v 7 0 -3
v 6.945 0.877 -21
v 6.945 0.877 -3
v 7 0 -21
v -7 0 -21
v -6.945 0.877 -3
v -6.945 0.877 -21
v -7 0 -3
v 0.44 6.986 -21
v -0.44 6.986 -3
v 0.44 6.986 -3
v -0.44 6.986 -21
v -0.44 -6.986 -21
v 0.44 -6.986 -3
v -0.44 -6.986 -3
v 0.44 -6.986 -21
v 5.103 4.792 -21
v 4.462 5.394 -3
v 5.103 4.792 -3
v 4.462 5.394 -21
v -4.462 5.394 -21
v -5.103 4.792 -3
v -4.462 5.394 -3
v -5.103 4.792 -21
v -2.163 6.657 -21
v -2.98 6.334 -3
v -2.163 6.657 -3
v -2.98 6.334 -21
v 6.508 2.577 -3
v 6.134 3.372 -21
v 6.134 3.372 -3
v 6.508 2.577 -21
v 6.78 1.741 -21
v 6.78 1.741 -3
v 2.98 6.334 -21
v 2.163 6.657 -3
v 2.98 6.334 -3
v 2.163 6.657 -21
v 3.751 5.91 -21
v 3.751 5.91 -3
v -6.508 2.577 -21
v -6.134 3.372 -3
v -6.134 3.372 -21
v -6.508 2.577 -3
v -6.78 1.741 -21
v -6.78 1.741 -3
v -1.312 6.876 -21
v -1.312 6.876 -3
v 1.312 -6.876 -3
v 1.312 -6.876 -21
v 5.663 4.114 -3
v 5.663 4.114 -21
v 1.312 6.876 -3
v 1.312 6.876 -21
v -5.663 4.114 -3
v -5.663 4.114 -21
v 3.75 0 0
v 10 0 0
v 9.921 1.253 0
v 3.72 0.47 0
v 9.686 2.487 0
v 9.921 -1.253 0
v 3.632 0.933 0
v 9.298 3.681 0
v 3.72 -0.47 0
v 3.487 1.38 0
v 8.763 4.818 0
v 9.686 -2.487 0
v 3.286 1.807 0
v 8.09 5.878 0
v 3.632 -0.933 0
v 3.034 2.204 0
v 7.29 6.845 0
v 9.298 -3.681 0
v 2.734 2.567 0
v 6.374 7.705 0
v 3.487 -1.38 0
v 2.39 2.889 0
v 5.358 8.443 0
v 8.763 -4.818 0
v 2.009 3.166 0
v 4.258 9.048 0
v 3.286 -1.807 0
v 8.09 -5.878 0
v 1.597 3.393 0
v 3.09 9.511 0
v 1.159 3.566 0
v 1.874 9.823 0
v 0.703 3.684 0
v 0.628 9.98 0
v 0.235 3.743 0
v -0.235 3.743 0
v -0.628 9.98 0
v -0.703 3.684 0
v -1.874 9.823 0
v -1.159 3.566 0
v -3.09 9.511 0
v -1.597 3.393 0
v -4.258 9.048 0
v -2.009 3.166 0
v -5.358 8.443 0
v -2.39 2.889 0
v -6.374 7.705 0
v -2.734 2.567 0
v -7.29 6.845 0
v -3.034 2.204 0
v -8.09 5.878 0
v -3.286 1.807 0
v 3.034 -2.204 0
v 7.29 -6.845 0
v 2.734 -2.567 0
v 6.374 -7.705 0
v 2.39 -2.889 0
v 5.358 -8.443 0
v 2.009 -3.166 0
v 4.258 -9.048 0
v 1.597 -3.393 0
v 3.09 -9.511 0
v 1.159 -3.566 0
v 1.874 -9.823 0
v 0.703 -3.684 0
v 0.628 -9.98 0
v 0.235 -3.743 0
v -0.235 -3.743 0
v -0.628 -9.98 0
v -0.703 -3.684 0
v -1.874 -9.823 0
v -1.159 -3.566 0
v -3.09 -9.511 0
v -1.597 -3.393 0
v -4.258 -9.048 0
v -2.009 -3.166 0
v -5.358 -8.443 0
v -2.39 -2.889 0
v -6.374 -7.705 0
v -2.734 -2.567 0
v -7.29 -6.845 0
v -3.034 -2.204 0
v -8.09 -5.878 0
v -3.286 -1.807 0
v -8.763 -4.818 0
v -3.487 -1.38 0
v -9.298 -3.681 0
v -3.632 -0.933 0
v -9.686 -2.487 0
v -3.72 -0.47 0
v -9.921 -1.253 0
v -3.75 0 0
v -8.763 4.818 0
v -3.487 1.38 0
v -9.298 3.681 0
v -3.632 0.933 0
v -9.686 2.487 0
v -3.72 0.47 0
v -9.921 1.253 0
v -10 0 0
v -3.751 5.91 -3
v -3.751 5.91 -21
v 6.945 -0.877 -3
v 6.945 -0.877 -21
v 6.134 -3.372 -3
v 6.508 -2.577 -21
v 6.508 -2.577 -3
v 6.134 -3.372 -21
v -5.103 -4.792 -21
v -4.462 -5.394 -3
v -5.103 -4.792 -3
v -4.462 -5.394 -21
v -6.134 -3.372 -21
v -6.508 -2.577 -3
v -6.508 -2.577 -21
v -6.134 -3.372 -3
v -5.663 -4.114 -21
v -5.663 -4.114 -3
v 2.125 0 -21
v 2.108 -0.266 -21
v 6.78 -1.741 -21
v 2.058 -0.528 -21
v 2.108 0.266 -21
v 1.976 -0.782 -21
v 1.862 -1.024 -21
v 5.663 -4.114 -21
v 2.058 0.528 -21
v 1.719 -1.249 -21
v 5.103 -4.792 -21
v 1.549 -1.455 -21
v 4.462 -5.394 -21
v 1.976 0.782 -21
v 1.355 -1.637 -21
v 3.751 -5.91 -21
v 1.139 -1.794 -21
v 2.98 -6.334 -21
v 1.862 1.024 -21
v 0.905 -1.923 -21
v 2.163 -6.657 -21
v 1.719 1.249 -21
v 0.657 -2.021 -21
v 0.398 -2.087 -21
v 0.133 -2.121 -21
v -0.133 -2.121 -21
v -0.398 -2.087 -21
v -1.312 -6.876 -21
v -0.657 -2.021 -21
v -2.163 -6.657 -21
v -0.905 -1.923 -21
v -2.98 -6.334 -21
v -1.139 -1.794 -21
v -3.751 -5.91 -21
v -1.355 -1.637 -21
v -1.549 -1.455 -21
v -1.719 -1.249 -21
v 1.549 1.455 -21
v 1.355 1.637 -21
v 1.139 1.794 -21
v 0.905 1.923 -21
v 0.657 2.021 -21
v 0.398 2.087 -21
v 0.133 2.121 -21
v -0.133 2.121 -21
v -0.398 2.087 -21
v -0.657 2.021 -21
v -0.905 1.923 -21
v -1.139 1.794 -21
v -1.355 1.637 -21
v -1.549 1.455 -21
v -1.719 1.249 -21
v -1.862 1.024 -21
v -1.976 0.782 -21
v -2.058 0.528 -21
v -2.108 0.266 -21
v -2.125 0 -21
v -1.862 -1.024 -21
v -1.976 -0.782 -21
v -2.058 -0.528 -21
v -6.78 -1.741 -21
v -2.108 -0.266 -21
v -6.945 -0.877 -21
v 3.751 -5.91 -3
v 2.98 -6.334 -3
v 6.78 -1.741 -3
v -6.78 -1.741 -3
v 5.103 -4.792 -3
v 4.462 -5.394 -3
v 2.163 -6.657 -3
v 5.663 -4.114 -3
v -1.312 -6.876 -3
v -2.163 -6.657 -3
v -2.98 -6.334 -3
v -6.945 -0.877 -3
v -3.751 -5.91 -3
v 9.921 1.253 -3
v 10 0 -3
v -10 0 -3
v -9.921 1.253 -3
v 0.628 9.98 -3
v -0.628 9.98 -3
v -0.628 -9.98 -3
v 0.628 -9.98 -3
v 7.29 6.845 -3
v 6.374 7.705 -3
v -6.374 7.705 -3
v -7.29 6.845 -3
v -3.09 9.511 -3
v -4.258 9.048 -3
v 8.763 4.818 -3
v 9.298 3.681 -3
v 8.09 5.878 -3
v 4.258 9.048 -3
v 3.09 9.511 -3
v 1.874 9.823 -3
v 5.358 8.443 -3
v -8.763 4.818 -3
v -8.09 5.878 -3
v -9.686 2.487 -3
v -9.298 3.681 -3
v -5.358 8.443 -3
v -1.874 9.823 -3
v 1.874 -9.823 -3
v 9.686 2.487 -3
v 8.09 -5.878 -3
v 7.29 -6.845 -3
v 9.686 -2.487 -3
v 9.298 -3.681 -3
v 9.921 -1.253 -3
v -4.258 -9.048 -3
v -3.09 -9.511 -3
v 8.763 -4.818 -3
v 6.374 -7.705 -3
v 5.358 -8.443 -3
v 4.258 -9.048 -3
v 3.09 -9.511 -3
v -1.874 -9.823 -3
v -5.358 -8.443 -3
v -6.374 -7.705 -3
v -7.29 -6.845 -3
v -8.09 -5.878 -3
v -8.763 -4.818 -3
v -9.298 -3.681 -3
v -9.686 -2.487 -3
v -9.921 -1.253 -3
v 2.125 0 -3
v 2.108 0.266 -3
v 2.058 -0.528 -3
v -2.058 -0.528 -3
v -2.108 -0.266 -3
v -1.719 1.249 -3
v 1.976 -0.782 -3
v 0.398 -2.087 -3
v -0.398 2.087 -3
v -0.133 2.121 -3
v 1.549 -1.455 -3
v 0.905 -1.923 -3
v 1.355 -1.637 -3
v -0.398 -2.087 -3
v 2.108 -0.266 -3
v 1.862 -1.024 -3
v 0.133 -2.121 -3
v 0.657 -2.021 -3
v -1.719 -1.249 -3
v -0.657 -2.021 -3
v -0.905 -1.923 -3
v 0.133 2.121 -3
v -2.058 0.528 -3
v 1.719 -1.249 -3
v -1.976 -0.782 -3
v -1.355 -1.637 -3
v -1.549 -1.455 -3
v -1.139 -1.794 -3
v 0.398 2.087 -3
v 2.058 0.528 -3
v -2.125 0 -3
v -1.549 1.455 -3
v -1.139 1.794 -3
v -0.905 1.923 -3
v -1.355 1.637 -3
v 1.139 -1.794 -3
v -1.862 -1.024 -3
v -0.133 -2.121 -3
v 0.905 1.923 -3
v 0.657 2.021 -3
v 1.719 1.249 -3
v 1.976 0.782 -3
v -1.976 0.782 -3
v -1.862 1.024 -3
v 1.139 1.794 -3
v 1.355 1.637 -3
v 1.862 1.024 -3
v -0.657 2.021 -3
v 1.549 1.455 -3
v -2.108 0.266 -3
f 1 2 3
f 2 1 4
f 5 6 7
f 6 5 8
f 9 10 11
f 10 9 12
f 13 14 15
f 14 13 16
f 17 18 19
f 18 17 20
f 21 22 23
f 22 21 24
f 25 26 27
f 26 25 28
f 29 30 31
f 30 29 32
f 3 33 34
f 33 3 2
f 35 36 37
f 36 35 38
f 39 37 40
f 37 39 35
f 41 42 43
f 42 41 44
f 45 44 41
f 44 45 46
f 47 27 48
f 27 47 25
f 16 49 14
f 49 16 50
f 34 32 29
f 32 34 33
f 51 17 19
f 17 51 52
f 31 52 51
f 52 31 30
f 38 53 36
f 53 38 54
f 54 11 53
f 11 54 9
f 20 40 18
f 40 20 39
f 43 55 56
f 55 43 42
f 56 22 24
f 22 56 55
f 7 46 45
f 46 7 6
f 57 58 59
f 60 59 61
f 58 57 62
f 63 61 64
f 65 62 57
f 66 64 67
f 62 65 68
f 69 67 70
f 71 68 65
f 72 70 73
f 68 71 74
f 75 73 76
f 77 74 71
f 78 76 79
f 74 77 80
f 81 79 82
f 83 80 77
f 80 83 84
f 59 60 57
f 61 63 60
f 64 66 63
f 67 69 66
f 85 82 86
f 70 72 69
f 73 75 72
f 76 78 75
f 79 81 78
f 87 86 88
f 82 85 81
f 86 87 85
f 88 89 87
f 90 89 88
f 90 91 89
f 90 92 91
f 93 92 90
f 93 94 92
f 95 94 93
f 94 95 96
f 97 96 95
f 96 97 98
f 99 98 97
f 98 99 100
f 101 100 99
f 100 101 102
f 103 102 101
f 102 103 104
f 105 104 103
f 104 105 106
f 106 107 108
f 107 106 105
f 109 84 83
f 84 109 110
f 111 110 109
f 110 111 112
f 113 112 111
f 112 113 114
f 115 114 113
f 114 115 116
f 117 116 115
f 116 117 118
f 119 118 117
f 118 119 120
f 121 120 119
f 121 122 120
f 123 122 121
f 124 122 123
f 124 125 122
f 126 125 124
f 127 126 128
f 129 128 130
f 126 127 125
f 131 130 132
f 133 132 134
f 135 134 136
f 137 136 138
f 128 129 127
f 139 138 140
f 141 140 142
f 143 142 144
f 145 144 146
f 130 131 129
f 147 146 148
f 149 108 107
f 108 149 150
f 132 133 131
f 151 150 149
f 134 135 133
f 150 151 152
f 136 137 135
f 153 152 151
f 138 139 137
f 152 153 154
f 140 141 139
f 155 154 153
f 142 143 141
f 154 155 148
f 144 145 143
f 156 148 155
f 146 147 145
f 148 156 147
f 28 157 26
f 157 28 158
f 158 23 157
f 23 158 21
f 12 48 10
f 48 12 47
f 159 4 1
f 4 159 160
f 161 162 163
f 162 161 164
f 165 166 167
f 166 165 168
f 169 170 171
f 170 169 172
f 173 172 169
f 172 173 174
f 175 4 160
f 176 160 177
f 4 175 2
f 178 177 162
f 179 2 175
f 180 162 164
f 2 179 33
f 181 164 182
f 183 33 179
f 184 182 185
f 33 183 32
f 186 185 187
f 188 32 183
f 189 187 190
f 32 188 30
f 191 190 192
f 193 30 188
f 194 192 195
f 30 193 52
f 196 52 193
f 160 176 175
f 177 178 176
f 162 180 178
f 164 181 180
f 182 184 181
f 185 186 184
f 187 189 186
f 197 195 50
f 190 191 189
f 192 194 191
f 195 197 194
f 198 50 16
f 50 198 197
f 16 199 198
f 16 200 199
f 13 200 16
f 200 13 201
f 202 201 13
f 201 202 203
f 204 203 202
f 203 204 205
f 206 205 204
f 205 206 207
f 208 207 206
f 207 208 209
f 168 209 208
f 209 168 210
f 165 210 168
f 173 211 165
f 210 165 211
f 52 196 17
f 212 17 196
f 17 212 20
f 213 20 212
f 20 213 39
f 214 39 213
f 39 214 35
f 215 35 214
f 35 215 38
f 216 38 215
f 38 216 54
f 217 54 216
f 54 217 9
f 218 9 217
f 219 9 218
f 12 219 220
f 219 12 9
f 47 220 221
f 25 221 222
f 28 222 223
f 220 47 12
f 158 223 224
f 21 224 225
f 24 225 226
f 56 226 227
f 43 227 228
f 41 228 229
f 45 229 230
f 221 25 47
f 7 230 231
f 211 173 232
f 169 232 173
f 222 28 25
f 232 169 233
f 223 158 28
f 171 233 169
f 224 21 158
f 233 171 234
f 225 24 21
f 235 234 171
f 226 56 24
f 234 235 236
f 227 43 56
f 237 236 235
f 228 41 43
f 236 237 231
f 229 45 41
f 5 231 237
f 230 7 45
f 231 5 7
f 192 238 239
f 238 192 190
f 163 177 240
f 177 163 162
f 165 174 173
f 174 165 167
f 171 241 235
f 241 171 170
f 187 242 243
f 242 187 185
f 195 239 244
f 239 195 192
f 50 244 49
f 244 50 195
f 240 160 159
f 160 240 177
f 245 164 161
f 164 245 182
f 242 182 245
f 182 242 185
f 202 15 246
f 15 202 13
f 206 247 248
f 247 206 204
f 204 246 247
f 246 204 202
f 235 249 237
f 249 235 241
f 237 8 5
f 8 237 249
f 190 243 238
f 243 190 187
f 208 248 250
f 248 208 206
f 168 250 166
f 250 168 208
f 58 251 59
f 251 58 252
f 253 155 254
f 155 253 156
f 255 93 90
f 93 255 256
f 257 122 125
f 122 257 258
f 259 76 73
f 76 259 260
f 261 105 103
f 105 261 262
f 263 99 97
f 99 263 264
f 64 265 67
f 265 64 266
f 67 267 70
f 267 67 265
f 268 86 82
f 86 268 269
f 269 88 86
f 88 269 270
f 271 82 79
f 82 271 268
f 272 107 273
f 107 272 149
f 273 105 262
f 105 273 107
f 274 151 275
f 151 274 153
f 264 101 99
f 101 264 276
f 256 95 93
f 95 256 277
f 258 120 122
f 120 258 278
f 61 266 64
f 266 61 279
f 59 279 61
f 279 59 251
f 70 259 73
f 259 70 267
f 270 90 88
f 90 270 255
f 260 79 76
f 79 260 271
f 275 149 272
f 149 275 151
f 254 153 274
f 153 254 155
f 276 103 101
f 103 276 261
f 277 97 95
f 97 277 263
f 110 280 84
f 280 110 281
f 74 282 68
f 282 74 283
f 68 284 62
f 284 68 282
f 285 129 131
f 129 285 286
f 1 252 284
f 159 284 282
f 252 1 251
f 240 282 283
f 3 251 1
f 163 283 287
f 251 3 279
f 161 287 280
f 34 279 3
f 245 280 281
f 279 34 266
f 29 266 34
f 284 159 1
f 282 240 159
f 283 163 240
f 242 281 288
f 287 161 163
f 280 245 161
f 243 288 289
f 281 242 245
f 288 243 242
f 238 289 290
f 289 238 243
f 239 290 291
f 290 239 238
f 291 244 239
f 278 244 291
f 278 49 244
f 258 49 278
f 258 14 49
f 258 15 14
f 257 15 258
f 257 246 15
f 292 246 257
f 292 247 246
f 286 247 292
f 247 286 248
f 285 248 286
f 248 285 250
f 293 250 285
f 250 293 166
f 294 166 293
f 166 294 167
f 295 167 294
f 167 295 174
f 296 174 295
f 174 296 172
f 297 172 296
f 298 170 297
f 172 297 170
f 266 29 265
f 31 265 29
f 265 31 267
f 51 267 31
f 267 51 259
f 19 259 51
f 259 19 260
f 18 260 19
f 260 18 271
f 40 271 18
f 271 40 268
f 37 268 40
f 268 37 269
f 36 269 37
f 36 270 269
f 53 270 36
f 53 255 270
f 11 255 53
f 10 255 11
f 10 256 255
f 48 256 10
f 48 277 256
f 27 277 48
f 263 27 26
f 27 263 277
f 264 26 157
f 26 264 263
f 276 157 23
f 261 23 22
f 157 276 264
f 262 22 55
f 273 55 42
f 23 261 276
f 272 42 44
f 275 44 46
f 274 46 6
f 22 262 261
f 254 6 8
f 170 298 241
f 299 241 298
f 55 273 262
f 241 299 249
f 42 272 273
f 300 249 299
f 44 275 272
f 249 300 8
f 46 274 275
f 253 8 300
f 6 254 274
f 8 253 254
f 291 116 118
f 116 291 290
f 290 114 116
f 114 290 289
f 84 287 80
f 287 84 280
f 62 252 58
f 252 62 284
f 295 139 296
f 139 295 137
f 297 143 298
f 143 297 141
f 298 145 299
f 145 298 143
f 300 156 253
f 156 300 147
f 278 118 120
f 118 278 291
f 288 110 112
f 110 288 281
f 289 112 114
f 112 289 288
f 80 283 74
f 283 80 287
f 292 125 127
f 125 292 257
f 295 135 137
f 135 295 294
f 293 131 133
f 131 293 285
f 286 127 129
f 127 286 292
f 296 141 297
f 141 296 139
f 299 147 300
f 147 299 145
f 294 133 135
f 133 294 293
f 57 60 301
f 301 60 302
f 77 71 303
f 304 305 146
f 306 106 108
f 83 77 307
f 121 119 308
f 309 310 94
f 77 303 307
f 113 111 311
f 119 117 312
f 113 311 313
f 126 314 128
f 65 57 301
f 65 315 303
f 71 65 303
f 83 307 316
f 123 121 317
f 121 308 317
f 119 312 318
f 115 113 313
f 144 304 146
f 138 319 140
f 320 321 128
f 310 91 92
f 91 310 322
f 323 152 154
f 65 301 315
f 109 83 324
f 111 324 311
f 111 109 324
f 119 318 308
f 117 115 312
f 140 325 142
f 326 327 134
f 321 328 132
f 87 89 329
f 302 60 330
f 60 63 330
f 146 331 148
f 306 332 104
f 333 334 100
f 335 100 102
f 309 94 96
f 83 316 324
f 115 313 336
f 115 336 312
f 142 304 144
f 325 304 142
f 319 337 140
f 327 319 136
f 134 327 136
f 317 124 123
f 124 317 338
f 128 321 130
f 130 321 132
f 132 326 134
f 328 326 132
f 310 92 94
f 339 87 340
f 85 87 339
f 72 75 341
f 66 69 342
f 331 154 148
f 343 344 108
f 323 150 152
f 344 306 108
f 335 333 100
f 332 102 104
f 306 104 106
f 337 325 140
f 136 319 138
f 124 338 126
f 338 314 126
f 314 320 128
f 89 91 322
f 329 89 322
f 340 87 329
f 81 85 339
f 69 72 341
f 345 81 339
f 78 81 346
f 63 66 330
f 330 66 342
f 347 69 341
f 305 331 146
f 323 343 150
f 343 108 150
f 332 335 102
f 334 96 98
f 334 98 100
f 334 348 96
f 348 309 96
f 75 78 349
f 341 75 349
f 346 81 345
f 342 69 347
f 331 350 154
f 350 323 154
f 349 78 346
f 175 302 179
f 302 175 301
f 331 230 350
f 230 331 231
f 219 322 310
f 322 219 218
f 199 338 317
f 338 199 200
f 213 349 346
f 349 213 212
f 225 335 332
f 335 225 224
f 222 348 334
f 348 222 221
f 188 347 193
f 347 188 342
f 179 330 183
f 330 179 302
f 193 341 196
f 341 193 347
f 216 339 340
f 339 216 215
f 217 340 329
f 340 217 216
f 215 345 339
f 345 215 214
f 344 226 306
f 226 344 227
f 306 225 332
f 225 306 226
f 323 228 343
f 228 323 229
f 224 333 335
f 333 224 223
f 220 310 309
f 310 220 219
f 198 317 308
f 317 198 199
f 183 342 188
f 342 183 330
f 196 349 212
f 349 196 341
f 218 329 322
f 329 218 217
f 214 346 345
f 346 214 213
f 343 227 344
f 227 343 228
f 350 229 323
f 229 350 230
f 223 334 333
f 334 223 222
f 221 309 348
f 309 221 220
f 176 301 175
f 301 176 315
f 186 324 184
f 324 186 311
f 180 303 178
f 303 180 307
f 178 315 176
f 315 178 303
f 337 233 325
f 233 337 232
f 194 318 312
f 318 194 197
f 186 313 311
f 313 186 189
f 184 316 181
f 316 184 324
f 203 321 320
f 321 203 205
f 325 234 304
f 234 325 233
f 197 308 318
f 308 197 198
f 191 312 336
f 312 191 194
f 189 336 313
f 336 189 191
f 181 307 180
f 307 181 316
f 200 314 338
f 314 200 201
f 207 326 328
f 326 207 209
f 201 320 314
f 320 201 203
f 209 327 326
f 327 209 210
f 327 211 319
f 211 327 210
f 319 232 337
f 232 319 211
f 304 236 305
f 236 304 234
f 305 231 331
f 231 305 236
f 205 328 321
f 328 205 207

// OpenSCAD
$fn = 50;


difference() {
	union() {
		translate(v = [0, 0, -21.0000000000]) {
			cylinder(h = 21, r = 7.0000000000);
		}
		translate(v = [0, 0, -3.0000000000]) {
			cylinder(h = 3, r = 10.0000000000);
		}
	}
	union() {
		translate(v = [0, 0, 0]) {
			rotate(a = [0, 0, 0]) {
				difference() {
					union() {
						#translate(v = [0, 0, -21.0000000000]) {
							cylinder(h = 21, r = 2.0000000000);
						}
						#translate(v = [0, 0, -3]) {
							cylinder(h = 3, r = 7.0000000000, r1 = 2.1250000000, r2 = 3.7500000000);
						}
						#translate(v = [0, 0, -21.0000000000]) {
							cylinder(h = 21, r = 2.1250000000);
						}
						#translate(v = [0, 0, -21.0000000000]) {
							cylinder(h = 21, r = 2.0000000000);
						}
					}
					union();
				}
			}
		}
	}
}
